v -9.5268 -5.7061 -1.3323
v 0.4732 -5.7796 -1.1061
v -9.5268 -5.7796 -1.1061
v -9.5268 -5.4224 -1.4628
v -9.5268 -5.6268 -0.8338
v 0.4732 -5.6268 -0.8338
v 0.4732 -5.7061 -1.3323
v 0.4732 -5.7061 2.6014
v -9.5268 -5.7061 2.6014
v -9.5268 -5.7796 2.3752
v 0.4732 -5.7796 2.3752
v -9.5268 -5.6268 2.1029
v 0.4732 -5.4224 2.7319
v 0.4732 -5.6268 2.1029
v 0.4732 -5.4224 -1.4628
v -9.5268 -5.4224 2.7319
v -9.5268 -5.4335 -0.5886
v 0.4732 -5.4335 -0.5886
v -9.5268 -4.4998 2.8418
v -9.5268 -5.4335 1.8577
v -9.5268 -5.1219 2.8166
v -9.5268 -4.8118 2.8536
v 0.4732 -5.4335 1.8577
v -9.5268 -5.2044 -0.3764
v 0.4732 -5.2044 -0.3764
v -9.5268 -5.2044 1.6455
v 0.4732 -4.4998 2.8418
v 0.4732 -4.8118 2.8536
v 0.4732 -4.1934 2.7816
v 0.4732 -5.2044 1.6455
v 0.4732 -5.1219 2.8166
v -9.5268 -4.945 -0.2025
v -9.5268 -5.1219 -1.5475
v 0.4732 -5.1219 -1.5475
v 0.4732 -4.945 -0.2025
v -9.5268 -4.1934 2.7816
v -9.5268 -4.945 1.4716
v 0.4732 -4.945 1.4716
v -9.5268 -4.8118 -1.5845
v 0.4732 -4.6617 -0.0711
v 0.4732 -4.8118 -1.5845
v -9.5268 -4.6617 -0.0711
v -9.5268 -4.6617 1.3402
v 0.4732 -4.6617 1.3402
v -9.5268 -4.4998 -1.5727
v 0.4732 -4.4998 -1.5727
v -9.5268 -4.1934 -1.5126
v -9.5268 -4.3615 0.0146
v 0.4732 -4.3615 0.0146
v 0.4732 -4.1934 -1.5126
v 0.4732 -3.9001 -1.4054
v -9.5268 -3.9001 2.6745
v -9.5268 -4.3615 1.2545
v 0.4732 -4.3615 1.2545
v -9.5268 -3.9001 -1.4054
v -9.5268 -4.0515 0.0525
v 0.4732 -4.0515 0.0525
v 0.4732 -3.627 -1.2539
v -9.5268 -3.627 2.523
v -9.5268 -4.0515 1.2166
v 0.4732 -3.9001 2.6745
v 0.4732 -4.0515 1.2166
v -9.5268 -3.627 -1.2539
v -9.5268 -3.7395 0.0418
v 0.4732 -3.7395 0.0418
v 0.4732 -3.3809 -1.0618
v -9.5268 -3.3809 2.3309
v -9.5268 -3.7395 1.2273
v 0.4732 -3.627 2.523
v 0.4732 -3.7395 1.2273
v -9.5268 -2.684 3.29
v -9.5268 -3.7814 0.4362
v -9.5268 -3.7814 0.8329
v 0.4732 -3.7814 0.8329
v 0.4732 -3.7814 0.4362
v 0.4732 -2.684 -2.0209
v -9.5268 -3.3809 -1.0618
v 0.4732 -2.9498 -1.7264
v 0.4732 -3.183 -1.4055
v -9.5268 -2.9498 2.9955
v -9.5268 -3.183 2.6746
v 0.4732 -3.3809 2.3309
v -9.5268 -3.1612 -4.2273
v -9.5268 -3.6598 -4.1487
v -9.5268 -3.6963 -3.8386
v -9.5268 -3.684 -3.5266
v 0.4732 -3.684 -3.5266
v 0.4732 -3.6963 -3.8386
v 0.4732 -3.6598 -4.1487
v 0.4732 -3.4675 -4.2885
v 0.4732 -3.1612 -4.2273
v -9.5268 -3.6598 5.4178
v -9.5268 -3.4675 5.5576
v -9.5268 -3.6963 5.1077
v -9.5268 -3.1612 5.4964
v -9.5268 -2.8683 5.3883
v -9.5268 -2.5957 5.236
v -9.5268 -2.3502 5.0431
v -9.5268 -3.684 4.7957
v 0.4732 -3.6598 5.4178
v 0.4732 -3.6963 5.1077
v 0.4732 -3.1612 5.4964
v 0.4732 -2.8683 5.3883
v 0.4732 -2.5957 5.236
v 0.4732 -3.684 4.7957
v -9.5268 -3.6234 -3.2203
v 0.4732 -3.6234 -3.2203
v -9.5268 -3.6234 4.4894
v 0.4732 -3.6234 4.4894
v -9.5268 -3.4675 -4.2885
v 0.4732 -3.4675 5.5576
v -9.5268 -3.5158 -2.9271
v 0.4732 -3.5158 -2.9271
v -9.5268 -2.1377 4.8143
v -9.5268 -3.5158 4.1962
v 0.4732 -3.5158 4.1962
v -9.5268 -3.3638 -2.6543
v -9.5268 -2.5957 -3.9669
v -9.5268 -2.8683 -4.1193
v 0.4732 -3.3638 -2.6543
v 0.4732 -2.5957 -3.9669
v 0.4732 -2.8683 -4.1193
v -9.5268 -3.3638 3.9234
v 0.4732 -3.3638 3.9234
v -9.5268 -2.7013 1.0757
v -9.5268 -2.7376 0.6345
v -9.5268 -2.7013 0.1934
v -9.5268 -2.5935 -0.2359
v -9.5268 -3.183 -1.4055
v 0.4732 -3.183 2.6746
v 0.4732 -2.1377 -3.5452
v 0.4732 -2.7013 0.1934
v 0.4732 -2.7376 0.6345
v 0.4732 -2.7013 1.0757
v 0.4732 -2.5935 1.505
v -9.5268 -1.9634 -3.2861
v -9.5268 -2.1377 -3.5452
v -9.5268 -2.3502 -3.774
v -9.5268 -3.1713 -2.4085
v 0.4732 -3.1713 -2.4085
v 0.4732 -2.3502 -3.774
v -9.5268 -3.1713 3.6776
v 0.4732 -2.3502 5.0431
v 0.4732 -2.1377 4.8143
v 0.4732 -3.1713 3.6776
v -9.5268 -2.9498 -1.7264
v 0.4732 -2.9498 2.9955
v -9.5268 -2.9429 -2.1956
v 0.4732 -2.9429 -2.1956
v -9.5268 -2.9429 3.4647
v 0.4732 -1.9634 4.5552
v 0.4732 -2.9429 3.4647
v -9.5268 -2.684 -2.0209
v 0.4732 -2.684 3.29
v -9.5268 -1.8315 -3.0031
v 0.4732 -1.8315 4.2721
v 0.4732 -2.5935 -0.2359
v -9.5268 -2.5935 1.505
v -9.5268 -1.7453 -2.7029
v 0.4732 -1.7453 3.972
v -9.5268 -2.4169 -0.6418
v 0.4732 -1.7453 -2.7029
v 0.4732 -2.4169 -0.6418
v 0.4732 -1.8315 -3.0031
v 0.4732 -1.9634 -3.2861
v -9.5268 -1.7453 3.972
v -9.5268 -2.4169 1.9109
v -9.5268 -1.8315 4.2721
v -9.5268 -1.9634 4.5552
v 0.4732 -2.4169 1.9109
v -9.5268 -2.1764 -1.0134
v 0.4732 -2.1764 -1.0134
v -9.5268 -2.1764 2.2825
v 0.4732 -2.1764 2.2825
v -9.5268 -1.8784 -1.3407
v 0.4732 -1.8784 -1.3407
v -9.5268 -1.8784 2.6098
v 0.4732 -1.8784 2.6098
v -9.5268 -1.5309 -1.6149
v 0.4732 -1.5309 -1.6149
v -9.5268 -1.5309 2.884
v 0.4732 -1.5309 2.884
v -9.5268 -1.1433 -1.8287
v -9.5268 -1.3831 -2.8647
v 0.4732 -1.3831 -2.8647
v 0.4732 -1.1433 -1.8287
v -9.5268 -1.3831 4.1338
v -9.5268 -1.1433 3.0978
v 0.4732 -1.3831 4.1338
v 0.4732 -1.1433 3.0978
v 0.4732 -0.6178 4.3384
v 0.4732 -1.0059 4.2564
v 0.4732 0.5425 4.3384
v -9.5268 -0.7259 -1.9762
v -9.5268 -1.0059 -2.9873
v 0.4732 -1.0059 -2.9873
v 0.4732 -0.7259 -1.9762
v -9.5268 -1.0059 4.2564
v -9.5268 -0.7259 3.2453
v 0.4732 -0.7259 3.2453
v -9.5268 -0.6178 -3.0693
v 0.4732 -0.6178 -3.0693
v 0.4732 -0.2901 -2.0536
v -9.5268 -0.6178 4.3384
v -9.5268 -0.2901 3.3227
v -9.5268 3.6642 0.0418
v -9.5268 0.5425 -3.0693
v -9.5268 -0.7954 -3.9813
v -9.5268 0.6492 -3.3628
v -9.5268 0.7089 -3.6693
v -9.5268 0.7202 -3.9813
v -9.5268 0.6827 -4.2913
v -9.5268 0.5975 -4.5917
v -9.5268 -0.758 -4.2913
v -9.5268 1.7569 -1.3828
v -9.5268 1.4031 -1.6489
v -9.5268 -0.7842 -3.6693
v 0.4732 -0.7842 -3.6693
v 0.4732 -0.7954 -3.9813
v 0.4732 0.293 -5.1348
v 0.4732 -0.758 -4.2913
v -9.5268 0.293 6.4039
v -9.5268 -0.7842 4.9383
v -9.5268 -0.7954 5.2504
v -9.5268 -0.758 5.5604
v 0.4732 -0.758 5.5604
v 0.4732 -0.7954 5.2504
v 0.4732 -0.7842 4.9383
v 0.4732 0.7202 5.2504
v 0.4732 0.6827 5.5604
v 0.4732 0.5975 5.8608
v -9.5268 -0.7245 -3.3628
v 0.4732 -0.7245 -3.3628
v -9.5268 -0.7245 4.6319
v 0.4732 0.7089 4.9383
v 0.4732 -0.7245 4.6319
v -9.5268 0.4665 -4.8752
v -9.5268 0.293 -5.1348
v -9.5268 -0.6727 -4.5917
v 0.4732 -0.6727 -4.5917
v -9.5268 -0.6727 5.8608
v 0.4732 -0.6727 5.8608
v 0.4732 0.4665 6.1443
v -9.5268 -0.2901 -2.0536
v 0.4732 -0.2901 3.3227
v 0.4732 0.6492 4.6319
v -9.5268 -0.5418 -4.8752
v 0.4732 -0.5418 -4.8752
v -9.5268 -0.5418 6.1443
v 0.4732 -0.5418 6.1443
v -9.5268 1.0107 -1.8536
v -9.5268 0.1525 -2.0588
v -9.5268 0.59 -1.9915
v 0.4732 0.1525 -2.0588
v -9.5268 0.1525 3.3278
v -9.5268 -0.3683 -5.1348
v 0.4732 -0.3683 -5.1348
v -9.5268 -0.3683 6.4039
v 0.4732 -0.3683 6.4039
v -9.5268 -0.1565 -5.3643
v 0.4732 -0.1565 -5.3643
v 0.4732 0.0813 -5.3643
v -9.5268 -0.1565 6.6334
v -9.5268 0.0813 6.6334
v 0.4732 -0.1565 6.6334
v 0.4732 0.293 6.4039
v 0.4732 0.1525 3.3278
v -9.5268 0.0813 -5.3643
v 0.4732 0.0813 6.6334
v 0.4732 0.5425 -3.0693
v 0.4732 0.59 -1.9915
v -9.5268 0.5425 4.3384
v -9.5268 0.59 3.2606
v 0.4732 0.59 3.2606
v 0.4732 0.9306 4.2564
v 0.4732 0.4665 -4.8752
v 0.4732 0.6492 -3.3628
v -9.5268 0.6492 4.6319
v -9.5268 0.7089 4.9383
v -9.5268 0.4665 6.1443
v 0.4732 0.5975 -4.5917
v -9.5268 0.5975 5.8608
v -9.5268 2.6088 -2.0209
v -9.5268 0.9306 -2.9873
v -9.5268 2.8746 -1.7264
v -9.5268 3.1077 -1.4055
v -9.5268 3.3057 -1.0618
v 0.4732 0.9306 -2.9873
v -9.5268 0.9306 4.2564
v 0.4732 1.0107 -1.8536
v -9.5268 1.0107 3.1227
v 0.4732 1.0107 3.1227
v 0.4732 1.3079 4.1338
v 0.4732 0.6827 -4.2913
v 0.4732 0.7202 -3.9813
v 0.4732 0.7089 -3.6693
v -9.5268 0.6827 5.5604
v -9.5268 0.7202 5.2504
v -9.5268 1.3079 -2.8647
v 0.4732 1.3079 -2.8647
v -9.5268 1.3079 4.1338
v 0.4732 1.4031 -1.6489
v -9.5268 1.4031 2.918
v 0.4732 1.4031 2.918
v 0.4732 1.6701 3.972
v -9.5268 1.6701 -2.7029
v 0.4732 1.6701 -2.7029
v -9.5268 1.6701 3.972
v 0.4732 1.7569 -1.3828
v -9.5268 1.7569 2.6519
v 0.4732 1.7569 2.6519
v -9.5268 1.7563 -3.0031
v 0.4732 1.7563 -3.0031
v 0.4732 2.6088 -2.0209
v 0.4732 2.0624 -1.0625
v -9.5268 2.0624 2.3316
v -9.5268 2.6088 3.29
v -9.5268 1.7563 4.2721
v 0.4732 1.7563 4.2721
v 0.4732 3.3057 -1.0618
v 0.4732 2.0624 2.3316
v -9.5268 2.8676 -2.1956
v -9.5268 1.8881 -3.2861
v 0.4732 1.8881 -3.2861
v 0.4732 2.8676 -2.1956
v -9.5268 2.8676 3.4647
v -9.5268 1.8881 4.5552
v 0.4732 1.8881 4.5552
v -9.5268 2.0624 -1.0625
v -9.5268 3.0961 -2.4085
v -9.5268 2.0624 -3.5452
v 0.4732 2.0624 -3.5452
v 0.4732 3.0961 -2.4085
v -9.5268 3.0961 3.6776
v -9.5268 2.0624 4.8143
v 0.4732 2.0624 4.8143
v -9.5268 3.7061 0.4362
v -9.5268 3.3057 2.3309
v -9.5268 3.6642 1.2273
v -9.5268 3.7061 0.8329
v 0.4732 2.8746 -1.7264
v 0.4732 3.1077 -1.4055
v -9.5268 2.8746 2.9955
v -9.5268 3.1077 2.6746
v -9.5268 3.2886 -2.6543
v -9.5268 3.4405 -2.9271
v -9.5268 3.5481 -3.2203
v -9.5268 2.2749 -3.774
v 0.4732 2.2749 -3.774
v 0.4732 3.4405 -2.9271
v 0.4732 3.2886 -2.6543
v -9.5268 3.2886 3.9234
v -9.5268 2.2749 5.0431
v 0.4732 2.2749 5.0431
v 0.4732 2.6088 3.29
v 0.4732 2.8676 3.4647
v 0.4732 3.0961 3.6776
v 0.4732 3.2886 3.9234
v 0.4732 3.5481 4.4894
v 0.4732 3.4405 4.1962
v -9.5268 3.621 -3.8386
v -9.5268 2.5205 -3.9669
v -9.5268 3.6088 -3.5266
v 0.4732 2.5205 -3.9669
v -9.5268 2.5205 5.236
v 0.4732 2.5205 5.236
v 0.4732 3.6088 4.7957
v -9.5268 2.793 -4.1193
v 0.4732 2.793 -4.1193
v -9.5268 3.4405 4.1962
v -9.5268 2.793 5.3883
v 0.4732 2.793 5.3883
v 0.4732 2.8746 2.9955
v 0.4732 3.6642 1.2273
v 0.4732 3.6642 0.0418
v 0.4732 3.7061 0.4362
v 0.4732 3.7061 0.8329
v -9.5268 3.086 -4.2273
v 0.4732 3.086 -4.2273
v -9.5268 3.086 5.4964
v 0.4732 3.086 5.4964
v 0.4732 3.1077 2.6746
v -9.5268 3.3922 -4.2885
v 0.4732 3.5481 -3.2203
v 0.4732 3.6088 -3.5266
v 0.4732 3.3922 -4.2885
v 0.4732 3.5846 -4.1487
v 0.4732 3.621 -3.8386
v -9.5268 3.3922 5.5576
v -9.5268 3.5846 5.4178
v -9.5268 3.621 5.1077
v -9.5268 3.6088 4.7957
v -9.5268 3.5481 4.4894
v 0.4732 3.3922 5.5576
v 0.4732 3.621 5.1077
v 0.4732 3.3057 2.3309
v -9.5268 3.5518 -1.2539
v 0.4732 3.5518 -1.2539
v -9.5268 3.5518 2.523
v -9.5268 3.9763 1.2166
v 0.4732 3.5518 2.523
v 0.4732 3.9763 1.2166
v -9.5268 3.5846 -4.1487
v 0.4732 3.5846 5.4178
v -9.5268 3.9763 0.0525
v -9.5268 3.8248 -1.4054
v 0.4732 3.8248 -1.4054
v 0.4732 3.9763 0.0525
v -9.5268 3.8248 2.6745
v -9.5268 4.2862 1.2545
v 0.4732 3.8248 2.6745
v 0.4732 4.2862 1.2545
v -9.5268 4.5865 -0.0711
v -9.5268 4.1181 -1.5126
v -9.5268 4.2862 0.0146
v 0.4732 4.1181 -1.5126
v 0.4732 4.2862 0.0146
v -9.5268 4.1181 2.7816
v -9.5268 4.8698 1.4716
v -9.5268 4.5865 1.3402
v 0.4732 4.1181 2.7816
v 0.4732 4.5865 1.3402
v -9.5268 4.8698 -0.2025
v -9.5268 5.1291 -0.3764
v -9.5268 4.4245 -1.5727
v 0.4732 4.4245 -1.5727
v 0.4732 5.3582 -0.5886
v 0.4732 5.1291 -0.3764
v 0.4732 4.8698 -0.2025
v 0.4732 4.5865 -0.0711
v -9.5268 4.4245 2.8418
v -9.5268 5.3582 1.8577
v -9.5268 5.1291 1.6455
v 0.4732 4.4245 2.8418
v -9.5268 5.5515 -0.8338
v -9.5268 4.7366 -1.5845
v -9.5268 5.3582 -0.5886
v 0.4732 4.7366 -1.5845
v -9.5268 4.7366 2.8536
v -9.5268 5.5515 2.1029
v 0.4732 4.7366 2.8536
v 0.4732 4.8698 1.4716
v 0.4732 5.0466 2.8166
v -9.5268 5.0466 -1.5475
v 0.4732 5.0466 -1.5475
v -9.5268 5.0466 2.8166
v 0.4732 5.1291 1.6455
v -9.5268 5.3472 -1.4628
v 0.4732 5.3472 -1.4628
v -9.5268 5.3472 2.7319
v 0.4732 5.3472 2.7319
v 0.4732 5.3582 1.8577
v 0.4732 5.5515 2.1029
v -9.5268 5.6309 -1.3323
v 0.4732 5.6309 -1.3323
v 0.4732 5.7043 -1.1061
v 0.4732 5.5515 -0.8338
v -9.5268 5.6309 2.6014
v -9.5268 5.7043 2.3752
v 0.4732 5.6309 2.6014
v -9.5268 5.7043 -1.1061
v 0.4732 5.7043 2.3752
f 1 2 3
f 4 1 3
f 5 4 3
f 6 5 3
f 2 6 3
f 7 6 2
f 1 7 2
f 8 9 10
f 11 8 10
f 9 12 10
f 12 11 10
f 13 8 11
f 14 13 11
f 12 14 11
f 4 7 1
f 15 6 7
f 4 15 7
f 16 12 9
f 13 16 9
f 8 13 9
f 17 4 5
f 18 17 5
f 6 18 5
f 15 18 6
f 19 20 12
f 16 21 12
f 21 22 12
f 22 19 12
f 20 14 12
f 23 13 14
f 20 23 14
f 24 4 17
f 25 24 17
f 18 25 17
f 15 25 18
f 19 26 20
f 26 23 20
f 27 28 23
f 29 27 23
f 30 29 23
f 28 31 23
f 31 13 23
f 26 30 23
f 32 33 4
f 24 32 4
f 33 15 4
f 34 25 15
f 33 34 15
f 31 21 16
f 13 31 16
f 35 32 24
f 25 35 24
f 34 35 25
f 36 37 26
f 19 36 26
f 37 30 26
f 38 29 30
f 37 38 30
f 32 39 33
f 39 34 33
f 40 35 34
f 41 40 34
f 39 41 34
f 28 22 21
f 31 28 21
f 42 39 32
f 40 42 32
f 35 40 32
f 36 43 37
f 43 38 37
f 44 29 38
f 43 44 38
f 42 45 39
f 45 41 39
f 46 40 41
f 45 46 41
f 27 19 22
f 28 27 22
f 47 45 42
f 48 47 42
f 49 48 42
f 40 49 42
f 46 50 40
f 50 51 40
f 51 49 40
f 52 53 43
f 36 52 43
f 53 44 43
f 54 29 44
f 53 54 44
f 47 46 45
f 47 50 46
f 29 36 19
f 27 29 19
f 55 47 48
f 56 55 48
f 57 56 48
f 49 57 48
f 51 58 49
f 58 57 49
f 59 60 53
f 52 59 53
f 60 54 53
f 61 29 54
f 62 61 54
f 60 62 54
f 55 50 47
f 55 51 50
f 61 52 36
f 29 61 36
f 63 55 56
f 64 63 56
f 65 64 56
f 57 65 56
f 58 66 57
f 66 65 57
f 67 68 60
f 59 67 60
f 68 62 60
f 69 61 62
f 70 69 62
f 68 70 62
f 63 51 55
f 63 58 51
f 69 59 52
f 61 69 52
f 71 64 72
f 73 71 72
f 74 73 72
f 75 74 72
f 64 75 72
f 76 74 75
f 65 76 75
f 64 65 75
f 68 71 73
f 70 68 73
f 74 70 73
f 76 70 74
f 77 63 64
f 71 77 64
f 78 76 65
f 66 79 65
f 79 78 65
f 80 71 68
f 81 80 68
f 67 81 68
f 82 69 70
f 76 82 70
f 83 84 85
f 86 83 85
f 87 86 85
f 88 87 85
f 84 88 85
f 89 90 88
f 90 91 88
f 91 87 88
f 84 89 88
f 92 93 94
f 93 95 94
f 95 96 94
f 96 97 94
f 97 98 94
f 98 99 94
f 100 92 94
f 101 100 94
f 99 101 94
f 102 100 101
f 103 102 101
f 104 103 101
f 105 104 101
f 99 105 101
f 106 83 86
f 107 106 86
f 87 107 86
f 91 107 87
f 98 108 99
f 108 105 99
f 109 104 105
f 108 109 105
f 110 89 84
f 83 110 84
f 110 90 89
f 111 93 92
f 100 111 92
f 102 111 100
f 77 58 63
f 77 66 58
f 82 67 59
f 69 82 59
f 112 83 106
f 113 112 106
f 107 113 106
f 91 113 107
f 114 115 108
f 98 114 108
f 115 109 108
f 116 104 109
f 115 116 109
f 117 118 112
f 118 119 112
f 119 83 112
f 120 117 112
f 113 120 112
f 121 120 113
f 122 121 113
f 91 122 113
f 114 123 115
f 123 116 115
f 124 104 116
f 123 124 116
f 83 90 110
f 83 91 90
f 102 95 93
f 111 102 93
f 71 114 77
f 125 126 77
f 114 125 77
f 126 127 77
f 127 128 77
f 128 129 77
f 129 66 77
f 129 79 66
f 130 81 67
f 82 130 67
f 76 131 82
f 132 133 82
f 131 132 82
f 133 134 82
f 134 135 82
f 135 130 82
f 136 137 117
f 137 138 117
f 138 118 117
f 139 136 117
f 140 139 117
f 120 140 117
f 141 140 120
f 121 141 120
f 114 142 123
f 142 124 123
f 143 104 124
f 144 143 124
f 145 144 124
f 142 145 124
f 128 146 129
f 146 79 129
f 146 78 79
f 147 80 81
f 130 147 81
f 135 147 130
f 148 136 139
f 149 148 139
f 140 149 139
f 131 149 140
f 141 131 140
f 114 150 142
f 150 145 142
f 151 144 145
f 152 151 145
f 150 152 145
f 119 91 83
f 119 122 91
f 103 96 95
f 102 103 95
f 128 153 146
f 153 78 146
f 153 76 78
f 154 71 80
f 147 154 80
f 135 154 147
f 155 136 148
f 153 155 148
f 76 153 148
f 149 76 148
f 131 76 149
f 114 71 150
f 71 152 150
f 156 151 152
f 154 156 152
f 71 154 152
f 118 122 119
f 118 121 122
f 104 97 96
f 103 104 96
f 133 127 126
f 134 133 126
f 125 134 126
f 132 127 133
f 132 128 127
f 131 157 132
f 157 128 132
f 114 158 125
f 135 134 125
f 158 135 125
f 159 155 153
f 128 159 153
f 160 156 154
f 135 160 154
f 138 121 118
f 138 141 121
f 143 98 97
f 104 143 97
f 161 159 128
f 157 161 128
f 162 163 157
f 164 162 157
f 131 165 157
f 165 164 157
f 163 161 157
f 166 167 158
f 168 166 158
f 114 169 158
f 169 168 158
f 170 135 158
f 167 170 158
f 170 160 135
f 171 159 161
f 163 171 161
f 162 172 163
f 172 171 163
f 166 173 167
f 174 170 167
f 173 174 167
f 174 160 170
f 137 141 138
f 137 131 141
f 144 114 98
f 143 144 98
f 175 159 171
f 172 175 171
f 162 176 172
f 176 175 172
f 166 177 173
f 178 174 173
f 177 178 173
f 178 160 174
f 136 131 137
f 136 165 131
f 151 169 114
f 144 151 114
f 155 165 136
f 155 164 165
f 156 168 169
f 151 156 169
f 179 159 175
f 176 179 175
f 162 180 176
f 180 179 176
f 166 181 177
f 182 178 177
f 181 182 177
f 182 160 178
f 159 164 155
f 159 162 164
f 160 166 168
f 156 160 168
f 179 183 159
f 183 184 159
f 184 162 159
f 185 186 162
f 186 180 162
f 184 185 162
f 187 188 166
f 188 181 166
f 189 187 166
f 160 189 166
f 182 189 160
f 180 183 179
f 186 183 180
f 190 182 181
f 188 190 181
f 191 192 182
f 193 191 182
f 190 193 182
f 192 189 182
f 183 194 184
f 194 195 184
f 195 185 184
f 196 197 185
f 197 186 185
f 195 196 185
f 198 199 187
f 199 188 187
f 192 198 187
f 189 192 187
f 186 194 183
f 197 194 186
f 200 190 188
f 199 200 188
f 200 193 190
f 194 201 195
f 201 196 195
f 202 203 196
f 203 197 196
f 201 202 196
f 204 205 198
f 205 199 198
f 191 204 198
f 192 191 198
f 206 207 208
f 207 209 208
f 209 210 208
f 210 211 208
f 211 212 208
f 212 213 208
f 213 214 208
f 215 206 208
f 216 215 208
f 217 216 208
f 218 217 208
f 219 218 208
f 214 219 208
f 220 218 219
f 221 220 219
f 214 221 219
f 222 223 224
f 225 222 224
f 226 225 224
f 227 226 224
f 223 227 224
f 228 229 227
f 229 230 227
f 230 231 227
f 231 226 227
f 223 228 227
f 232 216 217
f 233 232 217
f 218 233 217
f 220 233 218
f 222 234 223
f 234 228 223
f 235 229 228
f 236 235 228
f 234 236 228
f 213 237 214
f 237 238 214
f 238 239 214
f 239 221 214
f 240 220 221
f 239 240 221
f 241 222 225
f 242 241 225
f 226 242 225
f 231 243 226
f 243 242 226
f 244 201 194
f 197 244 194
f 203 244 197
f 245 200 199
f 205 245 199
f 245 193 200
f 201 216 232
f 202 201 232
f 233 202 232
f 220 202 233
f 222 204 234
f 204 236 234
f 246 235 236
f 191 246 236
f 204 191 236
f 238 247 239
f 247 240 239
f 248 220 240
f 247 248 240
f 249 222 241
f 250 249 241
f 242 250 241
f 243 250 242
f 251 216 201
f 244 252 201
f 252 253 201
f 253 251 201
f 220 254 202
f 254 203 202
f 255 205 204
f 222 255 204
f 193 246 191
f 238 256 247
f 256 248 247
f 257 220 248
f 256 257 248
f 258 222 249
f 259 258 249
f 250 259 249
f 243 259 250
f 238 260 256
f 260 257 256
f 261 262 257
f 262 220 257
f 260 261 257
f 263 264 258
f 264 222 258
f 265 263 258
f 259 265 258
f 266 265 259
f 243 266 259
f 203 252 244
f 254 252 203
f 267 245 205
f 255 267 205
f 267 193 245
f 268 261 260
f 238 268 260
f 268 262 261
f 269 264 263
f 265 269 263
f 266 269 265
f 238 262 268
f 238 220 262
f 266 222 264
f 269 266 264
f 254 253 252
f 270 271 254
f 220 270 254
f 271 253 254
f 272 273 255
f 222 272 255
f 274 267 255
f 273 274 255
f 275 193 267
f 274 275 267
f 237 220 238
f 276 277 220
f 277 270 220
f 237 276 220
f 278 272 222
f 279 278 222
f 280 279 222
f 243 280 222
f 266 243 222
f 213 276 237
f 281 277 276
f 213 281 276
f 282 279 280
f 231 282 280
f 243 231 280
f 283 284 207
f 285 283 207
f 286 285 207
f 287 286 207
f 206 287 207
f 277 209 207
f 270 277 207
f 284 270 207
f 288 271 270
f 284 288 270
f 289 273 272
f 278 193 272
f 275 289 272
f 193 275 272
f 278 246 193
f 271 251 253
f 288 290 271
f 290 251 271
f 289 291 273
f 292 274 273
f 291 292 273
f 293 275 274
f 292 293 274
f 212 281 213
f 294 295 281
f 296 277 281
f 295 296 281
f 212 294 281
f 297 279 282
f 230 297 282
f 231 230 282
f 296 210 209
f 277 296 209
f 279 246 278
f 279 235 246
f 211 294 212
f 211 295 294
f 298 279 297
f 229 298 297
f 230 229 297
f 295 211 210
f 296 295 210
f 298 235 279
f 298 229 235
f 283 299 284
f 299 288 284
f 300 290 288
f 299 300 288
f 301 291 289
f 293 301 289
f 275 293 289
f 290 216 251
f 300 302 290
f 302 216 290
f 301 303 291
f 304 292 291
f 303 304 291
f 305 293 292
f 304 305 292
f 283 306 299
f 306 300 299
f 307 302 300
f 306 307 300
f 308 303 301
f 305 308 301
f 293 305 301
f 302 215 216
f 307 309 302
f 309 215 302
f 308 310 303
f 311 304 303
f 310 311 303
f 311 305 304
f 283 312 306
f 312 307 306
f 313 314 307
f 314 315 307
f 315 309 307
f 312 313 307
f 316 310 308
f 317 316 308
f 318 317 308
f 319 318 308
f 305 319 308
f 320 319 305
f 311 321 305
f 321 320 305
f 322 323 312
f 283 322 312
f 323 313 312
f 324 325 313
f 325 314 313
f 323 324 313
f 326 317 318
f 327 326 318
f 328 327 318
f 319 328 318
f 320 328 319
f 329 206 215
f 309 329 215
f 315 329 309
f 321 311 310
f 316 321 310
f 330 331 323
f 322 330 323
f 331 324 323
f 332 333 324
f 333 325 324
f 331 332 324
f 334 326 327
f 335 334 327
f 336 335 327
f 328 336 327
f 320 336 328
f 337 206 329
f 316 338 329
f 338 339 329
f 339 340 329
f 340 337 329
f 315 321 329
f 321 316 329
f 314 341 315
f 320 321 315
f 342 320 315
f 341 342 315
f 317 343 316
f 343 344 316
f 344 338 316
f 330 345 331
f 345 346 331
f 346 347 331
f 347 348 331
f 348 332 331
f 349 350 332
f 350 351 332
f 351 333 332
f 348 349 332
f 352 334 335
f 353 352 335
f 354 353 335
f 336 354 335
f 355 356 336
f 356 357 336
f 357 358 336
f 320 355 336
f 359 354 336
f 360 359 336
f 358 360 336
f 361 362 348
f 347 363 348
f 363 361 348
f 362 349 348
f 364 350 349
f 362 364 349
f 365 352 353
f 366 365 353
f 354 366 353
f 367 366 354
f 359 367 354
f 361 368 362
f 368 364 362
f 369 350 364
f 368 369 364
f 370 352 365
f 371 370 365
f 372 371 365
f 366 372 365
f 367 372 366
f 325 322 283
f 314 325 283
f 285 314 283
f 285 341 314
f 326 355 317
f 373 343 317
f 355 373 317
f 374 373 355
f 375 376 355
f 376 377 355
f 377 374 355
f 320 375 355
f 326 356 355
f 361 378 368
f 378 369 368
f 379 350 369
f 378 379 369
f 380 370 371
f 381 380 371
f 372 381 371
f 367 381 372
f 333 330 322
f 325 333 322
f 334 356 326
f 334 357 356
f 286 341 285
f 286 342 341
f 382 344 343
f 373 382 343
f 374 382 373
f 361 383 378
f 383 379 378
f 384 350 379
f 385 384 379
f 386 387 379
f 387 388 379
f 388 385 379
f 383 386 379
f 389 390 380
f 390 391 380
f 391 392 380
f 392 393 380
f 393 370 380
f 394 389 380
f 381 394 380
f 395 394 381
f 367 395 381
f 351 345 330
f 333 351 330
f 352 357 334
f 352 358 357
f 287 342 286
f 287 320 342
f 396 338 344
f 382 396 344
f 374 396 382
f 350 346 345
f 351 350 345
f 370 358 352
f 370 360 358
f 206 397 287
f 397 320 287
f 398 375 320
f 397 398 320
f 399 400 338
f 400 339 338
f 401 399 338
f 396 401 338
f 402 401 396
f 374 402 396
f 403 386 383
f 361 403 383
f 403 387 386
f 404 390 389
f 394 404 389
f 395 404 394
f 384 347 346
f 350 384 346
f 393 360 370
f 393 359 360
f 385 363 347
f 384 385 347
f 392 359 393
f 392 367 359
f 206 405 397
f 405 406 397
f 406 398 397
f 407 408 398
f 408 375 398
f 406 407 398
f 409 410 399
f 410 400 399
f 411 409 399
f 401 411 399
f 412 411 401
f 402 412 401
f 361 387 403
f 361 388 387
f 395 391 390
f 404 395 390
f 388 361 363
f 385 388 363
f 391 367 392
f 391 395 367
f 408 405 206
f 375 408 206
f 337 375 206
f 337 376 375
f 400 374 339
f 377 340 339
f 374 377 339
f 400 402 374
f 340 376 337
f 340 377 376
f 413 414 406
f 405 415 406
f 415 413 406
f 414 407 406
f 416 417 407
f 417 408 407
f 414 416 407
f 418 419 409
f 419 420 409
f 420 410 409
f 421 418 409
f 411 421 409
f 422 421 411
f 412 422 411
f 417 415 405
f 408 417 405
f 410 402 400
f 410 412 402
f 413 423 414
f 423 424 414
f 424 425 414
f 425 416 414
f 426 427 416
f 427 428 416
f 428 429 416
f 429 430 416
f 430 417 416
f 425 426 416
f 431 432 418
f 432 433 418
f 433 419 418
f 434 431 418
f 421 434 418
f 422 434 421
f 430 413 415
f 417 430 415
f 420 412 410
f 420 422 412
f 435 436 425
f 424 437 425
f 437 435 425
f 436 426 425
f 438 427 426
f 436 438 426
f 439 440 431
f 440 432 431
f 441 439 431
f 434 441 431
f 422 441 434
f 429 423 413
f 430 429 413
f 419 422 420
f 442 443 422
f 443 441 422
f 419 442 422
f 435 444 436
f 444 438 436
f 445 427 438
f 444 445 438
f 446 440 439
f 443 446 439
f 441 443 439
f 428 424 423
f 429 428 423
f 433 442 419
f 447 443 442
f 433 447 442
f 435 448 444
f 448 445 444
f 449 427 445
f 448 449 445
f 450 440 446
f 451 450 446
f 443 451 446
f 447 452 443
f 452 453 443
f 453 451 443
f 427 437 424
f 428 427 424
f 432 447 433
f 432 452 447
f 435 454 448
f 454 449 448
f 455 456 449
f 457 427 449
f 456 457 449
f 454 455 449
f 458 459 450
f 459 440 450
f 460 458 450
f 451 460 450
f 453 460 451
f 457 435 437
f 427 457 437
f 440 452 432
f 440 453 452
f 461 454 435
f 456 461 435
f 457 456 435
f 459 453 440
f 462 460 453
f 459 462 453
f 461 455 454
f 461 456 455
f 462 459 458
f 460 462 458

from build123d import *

# Parameters (mm, degrees)
SPUR_START             = -9.526796012
SPUR_GEAR_AM_OUTLINE_R = 2.5
SPUR_GEAR_AM_DEPTH     = 10
SKETCH1_R              = 2.7
CUT_EXTRUDE1_DEPTH     = 14.319939227
BOSS_EXTRUDE1_DEPTH    = 10


# Read off the part's stored shape, not the designer's step: spur gear_am
with BuildPart() as part:
    # spur gear_am outline → spur gear_am (new body)
    with BuildSketch(Plane.YZ.offset(SPUR_START)):
        with BuildLine():
            ThreePointArc((-0.156519062, -5.364277595), (-0.037626451, -5.365455666), (0.081266159, -5.364277595))
            ThreePointArc((0.081266159, -5.364277595), (0.682735226, -4.291319539), (0.542534544, -3.069293435))
            ThreePointArc((0.542534544, -3.069293435), (1.12087826, -2.930966545), (1.670074661, -2.702933442))
            ThreePointArc((1.670074661, -2.702933442), (2.274938849, -3.773981221), (3.392206468, -4.288487876))
            ThreePointArc((3.392206468, -4.288487876), (3.489085062, -4.219557632), (3.584578752, -4.14872123))
            ThreePointArc((3.584578752, -4.14872123), (3.440508527, -2.927145281), (2.608794871, -2.020913288))
            ThreePointArc((2.608794871, -2.020913288), (2.995378261, -1.569062577), (3.305652987, -1.061770376))
            ThreePointArc((3.305652987, -1.061770376), (4.424544483, -1.572735982), (5.630852398, -1.33226718))
            ThreePointArc((5.630852398, -1.33226718), (5.668712646, -1.219557632), (5.704332072, -1.106119996))
            ThreePointArc((5.704332072, -1.106119996), (4.869752484, -0.202526647), (3.664212201, 0.041761415))
            ThreePointArc((3.664212201, 0.041761415), (3.711373549, 0.634544334), (3.664212201, 1.227327254))
            ThreePointArc((3.664212201, 1.227327254), (4.869752484, 1.471615316), (5.704332072, 2.375208665))
            ThreePointArc((5.704332072, 2.375208665), (5.668712646, 2.488646301), (5.630852398, 2.601355849))
            ThreePointArc((5.630852398, 2.601355849), (4.424544483, 2.84182465), (3.305652987, 2.330859045))
            ThreePointArc((3.305652987, 2.330859045), (2.995378261, 2.838151246), (2.608794871, 3.290001957))
            ThreePointArc((2.608794871, 3.290001957), (3.440508527, 4.19623395), (3.584578752, 5.417809899))
            ThreePointArc((3.584578752, 5.417809899), (3.489085062, 5.488646301), (3.392206468, 5.557576545))
            ThreePointArc((3.392206468, 5.557576545), (2.274938849, 5.04306989), (1.670074661, 3.972022111))
            ThreePointArc((1.670074661, 3.972022111), (1.12087826, 4.200055214), (0.542534544, 4.338382103))
            ThreePointArc((0.542534544, 4.338382103), (0.682735226, 5.560408207), (0.081266159, 6.633366264))
            ThreePointArc((0.081266159, 6.633366264), (-0.037626451, 6.634544334), (-0.156519062, 6.633366264))
            ThreePointArc((-0.156519062, 6.633366264), (-0.757988129, 5.560408207), (-0.617787447, 4.338382103))
            ThreePointArc((-0.617787447, 4.338382103), (-1.196131163, 4.200055214), (-1.745327564, 3.972022111))
            ThreePointArc((-1.745327564, 3.972022111), (-2.350191752, 5.04306989), (-3.467459371, 5.557576545))
            ThreePointArc((-3.467459371, 5.557576545), (-3.564337965, 5.488646301), (-3.659831655, 5.417809899))
            ThreePointArc((-3.659831655, 5.417809899), (-3.51576143, 4.19623395), (-2.684047774, 3.290001957))
            ThreePointArc((-2.684047774, 3.290001957), (-3.070631163, 2.838151245), (-3.38090589, 2.330859045))
            ThreePointArc((-3.38090589, 2.330859045), (-4.499797386, 2.84182465), (-5.706105301, 2.601355849))
            ThreePointArc((-5.706105301, 2.601355849), (-5.743965549, 2.488646301), (-5.779584975, 2.375208665))
            ThreePointArc((-5.779584975, 2.375208665), (-4.945005387, 1.471615316), (-3.739465104, 1.227327254))
            ThreePointArc((-3.739465104, 1.227327254), (-3.786626451, 0.634544334), (-3.739465104, 0.041761415))
            ThreePointArc((-3.739465104, 0.041761415), (-4.945005387, -0.202526647), (-5.779584975, -1.106119996))
            ThreePointArc((-5.779584975, -1.106119996), (-5.743965549, -1.219557632), (-5.706105301, -1.33226718))
            ThreePointArc((-5.706105301, -1.33226718), (-4.499797386, -1.572735982), (-3.38090589, -1.061770376))
            ThreePointArc((-3.38090589, -1.061770376), (-3.070631163, -1.569062576), (-2.684047774, -2.020913288))
            ThreePointArc((-2.684047774, -2.020913288), (-3.51576143, -2.927145281), (-3.659831655, -4.14872123))
            ThreePointArc((-3.659831655, -4.14872123), (-3.564337965, -4.219557632), (-3.467459371, -4.288487876))
            ThreePointArc((-3.467459371, -4.288487876), (-2.350191752, -3.773981221), (-1.745327564, -2.702933442))
            ThreePointArc((-1.745327564, -2.702933442), (-1.196131163, -2.930966545), (-0.617787447, -3.069293435))
            ThreePointArc((-0.617787447, -3.069293435), (-0.757988129, -4.291319539), (-0.156519062, -5.364277595))
        make_face()
        with Locations((-0.037626451, 0.634544334)):
            Circle(SPUR_GEAR_AM_OUTLINE_R, mode=Mode.SUBTRACT)
    extrude(amount=SPUR_GEAR_AM_DEPTH)

    # Sketch1 → Cut-Extrude1 (cut, through all)
    with BuildSketch(Plane.ZY.offset(9.526796012)):
        with Locations((0.634544334, -0.037626451)):
            Circle(SKETCH1_R)
    extrude(amount=-CUT_EXTRUDE1_DEPTH, mode=Mode.SUBTRACT)

    # Sketch2 → Boss-Extrude1 (add, through all)
    with BuildSketch(Plane.ZY.offset(9.526796012)):
        with BuildLine():
            Line((2.331600609, 2.062373549), (-1.06251194, 2.062373549))
            ThreePointArc((-1.06251194, 2.062373549), (0.634544334, 2.662373549), (2.331600609, 2.062373549))
        make_face()
    extrude(amount=-BOSS_EXTRUDE1_DEPTH)


solid = part.part
